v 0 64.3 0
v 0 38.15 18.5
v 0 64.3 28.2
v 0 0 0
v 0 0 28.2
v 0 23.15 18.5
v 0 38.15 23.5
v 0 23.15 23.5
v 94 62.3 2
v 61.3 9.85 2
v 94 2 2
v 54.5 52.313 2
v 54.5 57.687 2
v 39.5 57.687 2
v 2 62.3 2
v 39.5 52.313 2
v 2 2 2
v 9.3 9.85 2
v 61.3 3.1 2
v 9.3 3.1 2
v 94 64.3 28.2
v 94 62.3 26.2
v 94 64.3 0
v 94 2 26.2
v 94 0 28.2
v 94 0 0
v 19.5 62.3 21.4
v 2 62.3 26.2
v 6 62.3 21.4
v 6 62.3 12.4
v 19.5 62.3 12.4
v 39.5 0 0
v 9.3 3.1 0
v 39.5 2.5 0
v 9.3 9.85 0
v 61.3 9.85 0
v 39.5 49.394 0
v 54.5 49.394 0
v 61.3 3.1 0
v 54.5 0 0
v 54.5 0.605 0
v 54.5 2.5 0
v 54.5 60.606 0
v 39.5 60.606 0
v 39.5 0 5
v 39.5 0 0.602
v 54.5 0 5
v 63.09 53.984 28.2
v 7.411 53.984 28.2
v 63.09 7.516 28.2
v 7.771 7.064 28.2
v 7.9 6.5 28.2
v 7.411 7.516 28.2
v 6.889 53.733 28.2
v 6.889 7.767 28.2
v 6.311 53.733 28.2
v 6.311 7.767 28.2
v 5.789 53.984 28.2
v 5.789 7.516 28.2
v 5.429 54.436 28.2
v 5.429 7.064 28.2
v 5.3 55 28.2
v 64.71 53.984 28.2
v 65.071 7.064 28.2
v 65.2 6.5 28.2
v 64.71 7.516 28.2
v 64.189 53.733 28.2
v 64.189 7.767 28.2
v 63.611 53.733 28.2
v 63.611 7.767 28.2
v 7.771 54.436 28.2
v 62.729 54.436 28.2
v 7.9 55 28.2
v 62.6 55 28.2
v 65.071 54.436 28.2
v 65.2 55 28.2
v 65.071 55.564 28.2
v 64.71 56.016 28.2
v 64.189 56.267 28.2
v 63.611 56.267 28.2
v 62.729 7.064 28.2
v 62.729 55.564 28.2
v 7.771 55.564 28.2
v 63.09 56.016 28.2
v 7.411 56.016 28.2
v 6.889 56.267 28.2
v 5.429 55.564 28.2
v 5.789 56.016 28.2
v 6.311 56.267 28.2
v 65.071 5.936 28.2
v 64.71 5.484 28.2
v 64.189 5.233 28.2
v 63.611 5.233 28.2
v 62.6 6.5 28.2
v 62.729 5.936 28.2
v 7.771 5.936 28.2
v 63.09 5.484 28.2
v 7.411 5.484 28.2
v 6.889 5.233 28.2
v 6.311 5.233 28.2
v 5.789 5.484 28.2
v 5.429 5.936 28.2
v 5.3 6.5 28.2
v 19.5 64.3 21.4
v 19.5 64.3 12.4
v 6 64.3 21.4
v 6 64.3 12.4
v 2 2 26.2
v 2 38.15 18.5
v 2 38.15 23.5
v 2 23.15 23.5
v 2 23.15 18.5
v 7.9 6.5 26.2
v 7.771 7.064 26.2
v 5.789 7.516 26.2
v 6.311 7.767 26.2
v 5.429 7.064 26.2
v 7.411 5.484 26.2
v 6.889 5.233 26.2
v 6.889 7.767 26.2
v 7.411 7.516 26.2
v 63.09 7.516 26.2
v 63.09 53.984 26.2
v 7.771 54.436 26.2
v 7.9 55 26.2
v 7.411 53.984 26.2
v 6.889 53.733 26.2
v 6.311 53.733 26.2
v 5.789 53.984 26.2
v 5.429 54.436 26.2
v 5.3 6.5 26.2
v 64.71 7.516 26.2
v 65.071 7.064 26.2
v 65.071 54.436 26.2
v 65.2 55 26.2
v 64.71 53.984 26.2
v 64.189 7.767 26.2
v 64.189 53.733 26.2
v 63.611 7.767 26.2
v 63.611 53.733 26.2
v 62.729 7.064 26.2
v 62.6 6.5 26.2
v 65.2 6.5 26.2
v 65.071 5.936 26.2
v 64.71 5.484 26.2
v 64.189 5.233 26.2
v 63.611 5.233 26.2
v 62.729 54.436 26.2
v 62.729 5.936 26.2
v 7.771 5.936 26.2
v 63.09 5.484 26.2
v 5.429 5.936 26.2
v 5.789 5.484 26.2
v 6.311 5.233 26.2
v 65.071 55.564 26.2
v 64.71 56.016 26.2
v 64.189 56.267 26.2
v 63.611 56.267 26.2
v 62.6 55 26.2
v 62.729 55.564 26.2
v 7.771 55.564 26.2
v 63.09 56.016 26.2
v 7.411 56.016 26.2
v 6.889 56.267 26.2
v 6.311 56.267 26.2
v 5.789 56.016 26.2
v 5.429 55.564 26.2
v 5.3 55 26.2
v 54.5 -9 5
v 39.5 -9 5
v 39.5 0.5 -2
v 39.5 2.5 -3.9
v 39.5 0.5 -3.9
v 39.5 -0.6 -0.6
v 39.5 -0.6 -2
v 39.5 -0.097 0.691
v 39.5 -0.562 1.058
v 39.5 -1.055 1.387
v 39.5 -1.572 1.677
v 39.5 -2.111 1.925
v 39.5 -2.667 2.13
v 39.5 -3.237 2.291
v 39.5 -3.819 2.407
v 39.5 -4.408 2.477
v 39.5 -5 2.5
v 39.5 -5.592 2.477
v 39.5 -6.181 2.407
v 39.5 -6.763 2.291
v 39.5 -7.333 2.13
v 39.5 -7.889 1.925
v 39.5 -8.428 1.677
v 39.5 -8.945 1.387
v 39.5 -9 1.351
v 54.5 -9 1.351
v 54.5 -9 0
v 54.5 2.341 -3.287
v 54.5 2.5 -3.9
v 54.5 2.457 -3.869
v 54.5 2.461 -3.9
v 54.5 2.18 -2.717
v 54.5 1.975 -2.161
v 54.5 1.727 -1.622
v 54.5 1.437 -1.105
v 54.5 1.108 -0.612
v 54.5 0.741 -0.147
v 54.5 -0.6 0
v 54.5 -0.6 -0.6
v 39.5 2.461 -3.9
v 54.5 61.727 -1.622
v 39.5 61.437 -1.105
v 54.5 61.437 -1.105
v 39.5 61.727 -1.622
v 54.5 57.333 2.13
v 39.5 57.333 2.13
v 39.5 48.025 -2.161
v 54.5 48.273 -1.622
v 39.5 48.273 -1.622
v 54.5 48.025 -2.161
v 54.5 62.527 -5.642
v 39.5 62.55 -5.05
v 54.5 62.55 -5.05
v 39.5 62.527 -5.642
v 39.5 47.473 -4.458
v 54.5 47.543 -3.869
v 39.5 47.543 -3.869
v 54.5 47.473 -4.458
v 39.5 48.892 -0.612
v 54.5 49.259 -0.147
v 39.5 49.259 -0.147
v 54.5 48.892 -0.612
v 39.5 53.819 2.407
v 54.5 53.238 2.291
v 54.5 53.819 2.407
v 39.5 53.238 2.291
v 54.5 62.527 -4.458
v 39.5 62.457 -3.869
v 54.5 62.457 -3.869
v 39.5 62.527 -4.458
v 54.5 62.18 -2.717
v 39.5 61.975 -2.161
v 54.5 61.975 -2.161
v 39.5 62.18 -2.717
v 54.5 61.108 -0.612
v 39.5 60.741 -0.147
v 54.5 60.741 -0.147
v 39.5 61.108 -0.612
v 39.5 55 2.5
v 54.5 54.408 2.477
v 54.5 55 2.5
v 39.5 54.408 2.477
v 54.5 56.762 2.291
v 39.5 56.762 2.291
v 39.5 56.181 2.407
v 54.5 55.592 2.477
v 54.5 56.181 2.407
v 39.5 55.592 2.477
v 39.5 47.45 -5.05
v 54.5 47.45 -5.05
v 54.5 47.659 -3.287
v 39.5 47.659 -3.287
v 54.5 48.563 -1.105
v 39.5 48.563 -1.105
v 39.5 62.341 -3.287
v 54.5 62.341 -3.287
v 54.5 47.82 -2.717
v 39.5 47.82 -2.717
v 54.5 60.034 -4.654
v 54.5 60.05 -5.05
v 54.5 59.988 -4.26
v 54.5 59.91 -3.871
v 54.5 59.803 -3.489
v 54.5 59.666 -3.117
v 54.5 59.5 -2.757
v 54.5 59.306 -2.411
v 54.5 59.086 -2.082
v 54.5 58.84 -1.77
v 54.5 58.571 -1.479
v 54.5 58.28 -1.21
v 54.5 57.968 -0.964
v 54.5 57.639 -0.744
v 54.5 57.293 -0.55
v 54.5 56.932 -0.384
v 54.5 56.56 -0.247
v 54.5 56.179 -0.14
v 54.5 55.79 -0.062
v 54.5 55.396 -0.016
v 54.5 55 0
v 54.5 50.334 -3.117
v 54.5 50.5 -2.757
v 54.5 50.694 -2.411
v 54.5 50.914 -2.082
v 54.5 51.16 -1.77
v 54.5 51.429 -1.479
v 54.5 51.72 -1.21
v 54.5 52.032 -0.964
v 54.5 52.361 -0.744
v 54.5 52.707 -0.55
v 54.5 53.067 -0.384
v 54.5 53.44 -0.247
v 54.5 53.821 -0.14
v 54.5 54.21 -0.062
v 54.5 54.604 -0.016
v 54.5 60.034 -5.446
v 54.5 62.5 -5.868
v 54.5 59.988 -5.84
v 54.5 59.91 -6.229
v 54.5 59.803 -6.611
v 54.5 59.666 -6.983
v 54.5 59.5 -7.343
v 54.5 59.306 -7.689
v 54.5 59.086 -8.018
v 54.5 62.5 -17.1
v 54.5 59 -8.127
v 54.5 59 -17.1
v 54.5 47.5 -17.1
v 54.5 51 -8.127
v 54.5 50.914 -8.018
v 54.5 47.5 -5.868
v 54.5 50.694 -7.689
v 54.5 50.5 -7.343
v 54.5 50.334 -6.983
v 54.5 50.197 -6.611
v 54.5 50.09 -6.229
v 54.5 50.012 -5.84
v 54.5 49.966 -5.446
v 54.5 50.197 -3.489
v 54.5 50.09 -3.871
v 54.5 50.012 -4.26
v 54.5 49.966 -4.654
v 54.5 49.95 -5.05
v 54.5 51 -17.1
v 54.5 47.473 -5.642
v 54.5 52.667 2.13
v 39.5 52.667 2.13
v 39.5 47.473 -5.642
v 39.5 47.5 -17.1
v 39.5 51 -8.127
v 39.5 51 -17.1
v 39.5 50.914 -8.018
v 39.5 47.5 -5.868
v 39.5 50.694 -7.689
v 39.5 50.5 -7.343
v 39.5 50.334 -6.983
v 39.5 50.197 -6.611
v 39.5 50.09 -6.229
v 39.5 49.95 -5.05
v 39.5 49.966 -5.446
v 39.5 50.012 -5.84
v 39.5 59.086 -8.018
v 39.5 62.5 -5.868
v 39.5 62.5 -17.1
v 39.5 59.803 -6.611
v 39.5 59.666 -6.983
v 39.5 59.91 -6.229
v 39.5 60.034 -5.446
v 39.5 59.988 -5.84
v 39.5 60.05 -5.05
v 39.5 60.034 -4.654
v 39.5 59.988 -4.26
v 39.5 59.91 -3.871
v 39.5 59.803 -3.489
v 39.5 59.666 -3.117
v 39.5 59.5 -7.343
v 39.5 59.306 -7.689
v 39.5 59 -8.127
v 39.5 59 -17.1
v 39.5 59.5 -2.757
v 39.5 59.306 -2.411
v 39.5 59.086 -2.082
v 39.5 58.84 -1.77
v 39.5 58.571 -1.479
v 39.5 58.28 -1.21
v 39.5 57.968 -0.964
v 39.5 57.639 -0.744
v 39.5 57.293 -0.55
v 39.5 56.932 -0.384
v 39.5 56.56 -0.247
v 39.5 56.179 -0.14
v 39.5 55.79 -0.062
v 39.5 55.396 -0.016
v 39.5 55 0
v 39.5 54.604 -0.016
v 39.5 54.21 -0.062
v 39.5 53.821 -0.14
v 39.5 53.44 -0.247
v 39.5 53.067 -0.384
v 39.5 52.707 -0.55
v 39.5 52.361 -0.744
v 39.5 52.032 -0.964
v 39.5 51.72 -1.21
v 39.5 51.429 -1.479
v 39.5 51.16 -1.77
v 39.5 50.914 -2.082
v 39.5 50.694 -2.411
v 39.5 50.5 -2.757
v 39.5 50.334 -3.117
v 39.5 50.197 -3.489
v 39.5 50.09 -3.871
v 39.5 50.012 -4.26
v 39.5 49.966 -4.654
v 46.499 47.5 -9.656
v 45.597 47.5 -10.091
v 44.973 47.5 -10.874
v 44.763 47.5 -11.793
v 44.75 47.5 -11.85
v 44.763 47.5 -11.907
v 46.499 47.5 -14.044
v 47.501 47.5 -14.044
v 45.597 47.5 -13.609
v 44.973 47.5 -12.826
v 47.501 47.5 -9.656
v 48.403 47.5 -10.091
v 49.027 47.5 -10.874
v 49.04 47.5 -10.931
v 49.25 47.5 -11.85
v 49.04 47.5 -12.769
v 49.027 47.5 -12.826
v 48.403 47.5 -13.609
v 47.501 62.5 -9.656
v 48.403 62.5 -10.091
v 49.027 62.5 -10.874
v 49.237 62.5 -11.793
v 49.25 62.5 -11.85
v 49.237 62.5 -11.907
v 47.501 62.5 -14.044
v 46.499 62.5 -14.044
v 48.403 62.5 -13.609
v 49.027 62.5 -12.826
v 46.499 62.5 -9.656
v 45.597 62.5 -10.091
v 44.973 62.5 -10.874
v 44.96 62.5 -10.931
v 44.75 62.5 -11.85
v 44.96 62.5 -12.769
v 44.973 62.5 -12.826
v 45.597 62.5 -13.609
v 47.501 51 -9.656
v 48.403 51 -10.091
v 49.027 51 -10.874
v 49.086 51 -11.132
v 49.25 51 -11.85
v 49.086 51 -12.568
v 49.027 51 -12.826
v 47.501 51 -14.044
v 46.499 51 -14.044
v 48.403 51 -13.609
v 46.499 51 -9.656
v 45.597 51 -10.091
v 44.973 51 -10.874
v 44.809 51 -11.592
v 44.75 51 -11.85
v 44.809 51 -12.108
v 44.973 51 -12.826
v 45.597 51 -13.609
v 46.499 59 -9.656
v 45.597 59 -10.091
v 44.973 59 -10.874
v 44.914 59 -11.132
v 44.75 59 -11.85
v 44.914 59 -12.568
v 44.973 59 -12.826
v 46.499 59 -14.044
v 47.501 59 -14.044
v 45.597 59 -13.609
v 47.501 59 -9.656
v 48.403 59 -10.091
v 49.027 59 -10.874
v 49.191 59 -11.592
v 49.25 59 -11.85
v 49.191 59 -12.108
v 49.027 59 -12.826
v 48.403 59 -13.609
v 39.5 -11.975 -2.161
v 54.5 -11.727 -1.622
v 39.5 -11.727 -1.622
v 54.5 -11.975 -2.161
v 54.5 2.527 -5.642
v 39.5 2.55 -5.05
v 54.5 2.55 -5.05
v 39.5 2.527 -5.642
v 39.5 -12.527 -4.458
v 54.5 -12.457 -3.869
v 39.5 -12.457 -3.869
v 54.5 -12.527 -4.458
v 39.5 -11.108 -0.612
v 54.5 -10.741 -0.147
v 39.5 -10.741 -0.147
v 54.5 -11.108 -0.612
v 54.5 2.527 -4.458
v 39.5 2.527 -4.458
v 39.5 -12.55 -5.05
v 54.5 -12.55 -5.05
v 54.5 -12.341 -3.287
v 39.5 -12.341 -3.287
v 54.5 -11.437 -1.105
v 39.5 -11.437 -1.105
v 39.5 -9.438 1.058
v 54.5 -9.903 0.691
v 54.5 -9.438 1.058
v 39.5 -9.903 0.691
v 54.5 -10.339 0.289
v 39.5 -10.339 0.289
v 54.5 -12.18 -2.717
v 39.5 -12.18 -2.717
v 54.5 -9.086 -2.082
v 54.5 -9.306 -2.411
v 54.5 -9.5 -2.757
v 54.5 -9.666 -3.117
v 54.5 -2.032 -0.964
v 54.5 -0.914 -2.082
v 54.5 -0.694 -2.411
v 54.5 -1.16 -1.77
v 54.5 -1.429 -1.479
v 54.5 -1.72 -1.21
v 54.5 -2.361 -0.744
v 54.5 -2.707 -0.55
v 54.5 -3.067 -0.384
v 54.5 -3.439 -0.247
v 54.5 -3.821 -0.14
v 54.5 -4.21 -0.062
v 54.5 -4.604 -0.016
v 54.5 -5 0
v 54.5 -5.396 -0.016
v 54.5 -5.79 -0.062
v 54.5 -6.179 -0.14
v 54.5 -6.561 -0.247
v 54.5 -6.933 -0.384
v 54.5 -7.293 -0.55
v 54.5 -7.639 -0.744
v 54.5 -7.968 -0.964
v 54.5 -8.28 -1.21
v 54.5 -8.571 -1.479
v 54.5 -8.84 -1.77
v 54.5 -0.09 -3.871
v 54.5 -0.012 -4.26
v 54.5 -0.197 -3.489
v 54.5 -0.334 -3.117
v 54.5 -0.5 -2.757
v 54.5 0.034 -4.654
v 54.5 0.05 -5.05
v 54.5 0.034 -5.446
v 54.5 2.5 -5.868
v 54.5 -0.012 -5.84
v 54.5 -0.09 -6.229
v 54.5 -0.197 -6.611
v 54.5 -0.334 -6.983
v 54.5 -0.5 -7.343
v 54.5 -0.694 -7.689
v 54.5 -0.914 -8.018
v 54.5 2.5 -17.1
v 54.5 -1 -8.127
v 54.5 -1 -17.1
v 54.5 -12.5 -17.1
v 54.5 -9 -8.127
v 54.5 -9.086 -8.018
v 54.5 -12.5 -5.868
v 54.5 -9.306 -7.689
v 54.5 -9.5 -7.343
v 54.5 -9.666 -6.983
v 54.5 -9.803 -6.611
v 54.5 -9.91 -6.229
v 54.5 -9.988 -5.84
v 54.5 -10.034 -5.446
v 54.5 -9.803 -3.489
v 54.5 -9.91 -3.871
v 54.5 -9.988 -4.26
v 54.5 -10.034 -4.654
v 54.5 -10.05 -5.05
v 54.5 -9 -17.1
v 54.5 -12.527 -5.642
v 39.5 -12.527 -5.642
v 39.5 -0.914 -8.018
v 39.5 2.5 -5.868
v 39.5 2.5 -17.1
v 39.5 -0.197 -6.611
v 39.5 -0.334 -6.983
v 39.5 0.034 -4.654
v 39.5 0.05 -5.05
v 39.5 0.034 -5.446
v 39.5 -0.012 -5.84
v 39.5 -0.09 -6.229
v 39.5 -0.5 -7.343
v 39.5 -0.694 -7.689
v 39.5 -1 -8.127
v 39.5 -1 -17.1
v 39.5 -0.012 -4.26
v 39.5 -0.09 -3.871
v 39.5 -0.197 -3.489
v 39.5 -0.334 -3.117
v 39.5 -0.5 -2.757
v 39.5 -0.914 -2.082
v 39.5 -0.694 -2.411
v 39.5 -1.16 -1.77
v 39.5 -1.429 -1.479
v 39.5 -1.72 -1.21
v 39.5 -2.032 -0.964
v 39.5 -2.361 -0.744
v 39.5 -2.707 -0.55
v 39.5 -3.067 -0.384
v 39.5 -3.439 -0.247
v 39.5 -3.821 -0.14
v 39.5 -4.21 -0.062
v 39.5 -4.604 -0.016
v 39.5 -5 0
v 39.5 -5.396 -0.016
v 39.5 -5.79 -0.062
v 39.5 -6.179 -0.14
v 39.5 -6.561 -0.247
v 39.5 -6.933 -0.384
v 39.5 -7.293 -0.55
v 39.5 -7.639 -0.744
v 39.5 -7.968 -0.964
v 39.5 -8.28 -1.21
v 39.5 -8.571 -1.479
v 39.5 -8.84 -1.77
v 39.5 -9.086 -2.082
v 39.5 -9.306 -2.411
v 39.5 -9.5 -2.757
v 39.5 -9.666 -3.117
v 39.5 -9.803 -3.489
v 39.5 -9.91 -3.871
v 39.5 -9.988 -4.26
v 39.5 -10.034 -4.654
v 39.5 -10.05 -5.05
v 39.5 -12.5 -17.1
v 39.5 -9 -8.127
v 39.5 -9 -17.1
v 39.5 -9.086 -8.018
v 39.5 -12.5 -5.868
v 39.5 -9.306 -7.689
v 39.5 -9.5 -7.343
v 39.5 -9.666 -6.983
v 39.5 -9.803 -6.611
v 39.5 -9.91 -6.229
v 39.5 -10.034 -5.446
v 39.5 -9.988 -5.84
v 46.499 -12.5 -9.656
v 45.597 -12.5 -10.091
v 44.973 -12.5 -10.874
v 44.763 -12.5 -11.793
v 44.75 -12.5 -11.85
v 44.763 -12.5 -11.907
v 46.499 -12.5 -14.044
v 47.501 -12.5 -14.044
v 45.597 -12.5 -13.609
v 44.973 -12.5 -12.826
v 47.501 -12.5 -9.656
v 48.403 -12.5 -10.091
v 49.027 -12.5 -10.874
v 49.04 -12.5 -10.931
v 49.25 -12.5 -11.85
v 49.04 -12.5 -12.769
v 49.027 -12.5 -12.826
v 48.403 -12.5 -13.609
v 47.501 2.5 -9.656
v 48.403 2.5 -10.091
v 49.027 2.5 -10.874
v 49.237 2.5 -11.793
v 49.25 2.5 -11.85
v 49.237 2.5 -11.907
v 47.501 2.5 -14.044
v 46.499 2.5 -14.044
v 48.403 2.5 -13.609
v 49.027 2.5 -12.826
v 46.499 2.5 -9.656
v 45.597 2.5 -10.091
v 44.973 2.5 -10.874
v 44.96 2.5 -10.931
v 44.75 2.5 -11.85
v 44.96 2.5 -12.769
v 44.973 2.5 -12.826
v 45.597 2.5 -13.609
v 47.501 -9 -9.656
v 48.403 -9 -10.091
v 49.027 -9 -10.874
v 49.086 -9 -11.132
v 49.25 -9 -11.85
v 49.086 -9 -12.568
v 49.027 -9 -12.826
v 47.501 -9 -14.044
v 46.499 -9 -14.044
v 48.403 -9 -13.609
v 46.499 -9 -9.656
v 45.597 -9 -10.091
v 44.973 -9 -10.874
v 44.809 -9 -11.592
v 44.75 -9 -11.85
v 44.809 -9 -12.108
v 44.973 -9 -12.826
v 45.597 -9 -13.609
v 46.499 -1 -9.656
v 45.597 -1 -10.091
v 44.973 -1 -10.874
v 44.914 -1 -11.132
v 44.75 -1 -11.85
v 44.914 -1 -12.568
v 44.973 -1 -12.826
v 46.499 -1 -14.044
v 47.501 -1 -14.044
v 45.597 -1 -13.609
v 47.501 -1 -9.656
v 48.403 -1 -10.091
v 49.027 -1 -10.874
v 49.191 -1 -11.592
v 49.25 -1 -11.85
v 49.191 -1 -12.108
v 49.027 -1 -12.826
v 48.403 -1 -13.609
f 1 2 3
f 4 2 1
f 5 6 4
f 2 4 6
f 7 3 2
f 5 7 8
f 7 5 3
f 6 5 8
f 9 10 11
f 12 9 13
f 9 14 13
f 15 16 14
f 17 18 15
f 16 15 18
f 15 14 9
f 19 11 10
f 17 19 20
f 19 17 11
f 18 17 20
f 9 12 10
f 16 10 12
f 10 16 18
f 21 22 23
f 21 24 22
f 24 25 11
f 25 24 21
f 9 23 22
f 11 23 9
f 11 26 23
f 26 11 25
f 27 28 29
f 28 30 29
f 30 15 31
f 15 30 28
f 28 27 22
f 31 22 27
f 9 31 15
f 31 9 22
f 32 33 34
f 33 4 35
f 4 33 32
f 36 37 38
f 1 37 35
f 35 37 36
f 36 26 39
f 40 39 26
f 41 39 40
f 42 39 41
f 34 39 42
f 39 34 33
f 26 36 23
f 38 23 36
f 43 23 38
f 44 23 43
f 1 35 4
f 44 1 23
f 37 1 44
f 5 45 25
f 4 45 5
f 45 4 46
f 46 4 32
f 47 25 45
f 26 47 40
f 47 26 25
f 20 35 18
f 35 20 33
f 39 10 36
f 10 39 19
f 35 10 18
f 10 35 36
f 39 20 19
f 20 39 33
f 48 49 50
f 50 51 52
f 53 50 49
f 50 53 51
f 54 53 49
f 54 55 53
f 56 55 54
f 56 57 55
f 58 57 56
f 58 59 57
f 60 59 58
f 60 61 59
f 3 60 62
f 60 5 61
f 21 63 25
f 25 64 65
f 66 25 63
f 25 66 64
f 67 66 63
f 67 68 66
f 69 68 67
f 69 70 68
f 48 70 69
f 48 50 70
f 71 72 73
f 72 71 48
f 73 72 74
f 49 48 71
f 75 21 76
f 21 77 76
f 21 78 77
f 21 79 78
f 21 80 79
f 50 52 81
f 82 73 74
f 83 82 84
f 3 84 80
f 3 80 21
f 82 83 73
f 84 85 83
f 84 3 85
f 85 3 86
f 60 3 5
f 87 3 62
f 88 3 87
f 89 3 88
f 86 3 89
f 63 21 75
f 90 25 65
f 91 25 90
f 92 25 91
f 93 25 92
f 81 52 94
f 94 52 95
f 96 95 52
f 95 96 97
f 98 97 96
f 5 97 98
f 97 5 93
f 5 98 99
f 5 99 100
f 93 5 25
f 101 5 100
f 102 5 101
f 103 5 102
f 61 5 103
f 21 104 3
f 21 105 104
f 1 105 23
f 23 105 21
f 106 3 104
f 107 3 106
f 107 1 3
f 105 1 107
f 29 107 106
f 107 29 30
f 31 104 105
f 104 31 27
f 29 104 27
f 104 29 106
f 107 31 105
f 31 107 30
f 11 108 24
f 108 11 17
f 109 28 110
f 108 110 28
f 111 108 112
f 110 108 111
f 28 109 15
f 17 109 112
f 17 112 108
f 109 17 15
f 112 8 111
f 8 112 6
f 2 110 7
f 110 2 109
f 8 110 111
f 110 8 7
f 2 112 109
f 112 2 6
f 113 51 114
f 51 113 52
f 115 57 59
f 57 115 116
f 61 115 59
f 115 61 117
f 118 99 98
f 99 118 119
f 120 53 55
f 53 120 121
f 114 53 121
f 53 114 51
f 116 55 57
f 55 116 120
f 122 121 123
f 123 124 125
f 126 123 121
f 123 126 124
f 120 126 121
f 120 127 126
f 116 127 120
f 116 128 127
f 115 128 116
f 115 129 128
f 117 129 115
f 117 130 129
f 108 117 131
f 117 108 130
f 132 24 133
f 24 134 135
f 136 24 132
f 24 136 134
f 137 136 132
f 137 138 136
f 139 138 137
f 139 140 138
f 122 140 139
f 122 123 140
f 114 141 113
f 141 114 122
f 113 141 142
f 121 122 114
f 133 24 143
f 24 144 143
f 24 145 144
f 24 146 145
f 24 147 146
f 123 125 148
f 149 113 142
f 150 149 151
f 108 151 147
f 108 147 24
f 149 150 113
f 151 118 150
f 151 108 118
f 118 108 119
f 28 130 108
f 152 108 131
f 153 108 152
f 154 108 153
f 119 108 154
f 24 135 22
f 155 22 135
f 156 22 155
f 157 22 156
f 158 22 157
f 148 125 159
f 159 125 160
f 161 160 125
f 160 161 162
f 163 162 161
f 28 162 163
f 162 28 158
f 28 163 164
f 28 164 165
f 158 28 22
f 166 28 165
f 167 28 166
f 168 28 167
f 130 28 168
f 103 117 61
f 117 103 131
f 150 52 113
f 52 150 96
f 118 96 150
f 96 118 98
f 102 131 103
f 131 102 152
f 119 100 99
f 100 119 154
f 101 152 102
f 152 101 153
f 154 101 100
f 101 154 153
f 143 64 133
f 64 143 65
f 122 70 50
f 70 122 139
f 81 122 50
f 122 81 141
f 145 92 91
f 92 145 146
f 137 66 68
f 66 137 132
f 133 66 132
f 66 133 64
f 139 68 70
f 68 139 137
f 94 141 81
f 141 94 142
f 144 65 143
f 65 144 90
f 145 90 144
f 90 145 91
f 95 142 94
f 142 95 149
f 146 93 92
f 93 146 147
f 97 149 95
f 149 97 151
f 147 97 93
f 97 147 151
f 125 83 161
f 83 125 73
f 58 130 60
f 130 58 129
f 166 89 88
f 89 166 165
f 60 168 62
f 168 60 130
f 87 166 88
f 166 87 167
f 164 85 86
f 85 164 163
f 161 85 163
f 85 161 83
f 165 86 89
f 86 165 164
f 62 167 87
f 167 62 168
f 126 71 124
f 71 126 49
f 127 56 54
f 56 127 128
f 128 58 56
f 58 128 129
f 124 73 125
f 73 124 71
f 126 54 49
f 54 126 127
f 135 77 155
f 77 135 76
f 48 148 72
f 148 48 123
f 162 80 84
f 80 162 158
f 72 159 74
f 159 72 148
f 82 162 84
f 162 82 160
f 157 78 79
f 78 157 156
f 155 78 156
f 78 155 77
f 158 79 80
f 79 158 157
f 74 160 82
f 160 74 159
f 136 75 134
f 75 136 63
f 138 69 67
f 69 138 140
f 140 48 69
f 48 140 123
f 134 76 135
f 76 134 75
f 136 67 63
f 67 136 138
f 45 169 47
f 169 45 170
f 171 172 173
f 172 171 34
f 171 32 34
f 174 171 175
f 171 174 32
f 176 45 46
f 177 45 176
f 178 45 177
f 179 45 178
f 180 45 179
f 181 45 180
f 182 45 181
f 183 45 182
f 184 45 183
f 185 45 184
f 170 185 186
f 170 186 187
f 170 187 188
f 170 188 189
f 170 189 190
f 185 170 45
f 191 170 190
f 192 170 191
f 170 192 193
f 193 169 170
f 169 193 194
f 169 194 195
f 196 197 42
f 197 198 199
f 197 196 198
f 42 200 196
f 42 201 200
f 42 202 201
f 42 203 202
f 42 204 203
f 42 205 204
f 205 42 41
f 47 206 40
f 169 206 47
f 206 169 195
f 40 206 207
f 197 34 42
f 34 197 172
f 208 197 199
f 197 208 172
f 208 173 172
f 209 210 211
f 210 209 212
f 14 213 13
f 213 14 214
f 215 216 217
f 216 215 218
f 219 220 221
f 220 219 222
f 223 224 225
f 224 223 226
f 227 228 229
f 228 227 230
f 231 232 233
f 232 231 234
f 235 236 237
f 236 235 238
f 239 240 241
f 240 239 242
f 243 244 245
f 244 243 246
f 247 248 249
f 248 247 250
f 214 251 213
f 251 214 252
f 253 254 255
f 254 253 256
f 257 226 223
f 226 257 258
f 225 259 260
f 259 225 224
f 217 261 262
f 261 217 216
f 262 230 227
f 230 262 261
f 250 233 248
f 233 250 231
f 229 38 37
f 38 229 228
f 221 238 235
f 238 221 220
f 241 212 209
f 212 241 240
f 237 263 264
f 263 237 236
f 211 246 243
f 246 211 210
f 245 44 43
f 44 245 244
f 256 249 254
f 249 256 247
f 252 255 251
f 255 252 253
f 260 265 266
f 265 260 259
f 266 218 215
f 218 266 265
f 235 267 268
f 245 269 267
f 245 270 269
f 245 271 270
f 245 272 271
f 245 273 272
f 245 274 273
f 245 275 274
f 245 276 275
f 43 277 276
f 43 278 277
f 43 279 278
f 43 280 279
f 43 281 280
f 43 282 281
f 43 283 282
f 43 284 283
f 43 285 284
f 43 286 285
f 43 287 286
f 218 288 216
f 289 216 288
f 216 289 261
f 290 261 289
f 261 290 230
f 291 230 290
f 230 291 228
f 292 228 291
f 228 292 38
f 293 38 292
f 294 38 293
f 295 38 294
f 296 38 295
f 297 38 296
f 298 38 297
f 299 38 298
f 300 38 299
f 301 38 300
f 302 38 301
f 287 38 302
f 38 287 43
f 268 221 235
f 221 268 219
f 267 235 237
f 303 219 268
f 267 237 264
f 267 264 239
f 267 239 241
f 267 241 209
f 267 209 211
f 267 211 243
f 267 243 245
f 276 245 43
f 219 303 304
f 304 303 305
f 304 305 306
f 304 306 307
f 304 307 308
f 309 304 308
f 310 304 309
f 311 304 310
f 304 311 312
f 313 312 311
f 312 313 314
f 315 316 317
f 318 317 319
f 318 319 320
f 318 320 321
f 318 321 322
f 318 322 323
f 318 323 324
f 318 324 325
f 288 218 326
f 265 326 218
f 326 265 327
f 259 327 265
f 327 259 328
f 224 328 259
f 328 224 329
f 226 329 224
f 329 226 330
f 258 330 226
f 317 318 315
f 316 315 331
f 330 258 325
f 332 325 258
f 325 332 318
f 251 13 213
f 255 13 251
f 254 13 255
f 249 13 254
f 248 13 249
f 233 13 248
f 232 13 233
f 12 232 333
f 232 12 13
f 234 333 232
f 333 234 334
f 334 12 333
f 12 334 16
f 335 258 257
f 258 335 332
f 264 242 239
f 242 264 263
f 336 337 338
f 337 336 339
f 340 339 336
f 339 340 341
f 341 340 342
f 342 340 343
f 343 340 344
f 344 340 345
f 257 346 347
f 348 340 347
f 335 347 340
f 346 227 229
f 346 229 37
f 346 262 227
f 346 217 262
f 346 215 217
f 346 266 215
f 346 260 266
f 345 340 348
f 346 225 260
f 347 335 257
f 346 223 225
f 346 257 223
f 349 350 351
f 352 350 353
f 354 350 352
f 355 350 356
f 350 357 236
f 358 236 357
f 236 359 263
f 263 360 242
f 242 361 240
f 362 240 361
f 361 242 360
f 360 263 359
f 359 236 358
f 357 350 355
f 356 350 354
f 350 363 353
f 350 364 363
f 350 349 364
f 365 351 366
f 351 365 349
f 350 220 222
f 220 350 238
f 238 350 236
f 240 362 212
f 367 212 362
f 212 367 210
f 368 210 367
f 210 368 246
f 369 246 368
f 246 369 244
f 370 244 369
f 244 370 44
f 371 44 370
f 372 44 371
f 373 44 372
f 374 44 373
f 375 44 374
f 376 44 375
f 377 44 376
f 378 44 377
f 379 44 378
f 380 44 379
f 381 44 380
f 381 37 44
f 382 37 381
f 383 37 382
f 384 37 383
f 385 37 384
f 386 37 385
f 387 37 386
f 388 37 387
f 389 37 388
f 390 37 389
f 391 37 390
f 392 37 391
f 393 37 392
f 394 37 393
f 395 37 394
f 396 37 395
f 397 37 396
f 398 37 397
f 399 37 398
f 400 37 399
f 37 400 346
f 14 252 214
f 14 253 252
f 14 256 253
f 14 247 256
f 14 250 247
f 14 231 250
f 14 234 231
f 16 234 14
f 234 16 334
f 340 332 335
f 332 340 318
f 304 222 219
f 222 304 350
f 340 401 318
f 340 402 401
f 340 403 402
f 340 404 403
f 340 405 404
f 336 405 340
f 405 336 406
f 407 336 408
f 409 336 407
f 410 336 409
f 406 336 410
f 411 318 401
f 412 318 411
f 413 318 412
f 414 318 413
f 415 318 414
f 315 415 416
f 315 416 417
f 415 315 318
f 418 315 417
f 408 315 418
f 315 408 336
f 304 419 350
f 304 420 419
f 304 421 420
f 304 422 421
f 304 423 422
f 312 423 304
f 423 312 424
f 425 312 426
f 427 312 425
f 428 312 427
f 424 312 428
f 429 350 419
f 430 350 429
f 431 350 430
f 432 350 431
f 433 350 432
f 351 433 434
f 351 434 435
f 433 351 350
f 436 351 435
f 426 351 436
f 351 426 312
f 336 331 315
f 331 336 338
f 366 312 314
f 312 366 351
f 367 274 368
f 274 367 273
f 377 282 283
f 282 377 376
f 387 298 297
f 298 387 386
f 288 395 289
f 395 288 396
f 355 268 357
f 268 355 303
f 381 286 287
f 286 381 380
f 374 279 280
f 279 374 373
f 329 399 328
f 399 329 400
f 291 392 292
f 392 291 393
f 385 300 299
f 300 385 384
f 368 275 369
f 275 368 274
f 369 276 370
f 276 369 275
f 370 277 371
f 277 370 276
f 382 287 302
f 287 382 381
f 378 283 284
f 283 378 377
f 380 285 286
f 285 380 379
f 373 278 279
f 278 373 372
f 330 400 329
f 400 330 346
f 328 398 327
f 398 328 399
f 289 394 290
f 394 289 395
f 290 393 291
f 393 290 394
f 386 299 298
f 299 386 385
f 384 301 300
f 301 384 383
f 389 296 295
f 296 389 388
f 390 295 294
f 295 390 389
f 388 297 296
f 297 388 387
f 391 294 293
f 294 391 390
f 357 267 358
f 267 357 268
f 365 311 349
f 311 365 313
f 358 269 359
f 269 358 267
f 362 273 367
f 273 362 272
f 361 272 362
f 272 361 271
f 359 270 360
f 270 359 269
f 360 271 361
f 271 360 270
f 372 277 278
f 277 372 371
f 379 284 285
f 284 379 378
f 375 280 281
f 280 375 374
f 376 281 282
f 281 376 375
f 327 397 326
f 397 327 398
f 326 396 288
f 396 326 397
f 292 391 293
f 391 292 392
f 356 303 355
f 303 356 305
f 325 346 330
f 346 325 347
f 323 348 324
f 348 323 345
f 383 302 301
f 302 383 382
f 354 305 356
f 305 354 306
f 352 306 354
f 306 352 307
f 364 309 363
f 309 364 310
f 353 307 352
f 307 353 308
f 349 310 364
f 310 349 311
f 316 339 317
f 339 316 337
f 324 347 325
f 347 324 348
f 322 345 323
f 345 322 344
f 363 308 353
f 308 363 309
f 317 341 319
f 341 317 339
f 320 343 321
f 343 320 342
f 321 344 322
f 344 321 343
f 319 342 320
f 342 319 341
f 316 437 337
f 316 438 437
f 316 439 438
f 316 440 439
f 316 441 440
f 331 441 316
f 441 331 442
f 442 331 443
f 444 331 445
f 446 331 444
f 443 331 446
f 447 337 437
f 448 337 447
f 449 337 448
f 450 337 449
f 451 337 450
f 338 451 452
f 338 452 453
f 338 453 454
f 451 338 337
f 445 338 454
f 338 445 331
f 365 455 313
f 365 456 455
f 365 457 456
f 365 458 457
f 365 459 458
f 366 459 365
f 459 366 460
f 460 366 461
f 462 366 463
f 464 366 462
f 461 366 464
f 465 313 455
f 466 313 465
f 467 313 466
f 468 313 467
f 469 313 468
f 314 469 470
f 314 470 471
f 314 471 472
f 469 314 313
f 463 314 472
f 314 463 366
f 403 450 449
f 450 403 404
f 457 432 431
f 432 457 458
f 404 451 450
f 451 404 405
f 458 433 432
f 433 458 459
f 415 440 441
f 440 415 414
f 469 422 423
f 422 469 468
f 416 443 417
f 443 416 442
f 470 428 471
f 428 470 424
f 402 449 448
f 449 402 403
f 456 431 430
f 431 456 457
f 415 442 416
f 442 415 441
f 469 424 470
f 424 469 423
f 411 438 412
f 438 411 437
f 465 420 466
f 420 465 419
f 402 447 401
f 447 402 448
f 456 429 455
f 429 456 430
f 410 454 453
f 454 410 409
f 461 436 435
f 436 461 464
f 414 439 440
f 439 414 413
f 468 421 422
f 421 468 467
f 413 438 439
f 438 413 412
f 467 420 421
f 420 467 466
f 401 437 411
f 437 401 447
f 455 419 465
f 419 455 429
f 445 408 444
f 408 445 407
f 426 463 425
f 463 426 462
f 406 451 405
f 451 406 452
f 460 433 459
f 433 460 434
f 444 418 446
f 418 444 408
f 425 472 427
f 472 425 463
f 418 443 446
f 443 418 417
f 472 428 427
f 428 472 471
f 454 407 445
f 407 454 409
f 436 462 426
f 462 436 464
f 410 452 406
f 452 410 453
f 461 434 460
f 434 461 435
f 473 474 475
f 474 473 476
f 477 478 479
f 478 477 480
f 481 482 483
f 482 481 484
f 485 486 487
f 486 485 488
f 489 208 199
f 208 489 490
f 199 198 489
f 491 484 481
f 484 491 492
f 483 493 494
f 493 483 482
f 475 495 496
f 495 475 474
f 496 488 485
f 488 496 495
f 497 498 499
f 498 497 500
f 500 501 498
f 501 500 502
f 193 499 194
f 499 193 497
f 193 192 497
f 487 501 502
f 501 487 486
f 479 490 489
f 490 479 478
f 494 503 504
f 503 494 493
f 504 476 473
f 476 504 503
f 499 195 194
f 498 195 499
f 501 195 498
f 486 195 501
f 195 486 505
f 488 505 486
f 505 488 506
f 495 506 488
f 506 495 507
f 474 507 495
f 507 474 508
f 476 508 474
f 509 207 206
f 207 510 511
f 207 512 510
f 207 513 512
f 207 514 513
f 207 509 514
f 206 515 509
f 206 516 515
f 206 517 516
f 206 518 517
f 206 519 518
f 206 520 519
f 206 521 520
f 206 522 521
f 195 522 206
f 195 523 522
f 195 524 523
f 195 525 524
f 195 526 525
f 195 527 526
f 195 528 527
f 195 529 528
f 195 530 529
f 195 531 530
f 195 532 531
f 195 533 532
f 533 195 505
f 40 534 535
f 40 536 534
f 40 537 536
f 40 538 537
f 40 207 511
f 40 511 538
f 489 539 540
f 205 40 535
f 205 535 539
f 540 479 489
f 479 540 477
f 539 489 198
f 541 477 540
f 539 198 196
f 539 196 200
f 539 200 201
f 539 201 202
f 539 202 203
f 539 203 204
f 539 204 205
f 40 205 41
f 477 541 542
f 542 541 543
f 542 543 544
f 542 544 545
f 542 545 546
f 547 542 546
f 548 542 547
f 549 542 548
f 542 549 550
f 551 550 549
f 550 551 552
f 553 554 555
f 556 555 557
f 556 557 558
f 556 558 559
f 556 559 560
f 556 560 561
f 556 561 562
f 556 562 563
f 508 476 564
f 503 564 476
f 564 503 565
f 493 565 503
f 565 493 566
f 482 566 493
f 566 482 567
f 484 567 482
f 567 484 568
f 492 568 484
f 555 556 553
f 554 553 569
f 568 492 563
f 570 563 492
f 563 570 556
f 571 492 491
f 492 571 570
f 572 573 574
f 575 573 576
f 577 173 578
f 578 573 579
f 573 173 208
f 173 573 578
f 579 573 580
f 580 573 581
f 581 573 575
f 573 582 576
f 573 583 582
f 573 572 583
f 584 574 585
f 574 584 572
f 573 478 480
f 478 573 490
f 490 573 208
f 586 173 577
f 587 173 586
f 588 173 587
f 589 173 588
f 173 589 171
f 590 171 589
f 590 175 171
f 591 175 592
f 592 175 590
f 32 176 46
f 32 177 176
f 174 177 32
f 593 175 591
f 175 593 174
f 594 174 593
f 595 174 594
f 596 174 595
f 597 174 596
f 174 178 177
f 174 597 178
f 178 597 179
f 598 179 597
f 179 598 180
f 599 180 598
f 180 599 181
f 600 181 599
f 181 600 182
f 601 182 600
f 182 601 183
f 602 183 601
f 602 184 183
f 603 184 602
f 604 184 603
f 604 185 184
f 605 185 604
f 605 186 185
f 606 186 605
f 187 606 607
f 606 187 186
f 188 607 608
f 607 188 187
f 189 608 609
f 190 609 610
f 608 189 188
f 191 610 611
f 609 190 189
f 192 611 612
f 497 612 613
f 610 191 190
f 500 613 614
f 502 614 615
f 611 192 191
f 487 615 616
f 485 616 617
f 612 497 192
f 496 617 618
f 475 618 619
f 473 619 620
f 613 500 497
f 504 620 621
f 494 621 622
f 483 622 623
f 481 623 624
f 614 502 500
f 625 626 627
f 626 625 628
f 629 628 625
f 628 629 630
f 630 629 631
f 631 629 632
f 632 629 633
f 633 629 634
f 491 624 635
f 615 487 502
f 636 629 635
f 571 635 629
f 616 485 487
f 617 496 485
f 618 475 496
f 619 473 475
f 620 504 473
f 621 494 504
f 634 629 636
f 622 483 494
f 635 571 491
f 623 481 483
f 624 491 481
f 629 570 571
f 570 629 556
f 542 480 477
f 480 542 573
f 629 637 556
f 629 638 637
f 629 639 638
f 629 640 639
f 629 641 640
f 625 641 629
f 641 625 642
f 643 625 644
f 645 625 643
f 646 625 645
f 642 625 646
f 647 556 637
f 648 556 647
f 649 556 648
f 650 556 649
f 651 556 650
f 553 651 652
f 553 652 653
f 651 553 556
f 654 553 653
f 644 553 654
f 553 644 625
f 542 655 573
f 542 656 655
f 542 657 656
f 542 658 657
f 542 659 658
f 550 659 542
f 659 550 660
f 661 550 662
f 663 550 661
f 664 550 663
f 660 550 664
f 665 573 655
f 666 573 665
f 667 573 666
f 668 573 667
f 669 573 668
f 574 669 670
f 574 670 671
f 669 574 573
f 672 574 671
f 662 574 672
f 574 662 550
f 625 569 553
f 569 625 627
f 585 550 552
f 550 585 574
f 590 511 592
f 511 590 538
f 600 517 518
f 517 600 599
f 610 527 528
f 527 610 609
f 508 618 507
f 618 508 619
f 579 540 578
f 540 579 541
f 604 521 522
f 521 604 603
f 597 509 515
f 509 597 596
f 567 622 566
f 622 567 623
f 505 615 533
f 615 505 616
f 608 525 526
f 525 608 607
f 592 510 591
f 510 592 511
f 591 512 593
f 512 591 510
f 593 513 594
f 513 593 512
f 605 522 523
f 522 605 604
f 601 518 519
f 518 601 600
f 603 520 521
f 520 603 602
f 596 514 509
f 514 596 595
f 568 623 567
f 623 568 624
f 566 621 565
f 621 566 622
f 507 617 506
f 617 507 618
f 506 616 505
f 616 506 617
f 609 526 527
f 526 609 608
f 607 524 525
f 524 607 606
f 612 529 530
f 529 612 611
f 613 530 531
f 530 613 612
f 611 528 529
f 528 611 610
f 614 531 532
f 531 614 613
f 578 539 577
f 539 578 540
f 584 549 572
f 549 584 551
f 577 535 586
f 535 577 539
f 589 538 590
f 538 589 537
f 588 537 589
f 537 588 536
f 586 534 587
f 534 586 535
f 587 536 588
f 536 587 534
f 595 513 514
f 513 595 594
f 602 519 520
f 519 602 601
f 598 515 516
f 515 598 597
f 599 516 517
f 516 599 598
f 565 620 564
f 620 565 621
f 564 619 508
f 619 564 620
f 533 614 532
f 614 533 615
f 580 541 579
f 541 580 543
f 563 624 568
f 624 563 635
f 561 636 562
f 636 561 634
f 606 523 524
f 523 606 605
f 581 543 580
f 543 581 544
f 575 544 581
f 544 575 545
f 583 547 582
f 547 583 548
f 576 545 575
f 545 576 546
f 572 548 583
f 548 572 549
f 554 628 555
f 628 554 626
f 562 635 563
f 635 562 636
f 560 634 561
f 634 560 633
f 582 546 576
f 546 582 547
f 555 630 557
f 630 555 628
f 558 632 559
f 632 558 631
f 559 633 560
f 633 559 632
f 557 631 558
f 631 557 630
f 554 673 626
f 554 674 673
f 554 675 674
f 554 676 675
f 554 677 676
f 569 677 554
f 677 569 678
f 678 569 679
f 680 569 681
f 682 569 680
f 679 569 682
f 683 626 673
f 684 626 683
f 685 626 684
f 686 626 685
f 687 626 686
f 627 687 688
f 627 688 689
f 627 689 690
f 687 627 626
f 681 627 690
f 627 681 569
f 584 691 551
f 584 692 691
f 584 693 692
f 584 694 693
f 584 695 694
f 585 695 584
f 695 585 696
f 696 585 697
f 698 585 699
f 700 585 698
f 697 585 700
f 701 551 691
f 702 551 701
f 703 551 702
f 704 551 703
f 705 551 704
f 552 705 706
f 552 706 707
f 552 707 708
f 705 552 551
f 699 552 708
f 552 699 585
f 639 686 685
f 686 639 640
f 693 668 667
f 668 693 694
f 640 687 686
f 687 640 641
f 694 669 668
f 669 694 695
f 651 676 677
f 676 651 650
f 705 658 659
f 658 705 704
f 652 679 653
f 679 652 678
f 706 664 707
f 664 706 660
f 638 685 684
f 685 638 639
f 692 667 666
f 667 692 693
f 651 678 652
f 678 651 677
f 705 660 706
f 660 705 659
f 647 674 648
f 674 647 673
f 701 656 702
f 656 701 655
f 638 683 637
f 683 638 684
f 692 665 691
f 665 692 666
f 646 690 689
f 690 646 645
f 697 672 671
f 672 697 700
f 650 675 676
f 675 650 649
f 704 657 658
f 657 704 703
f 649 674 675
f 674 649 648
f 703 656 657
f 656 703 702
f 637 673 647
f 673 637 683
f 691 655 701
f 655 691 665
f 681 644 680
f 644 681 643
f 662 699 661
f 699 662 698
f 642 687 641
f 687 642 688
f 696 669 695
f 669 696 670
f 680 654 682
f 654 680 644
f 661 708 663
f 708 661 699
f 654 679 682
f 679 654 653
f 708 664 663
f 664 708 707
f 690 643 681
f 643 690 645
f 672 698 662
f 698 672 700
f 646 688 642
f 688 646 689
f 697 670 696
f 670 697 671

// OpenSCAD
piStandoffHeight = 6;
piStandoffBoltSize = 2.5;

// rotate([270,0,0])
//    translate([45,-19,31.0])
//        import("./pi.stl"); 

shaftDiameter = 10.1;
clampWidth = 15 ;
clampThickness = 2.5 ;
clampLegLengthFromShaft = 7 ;
clampLegThickness = clampThickness + 1 ; // default is 'clampThickness' to keep it the same thickness as the clamp
clampLegGap = 8 ;
clampToClampScrewCenter = (clampLegLengthFromShaft - clampThickness) / 2 - 3 ; //using '(clampLegLengthFromShaft - clampThickness) / 2' nearly centres this hole on the clamp leg
clampScrewDiameter = 4.5 ;
shaftToMountPlate = 0 ;
mountPlateThickness = 5 ;
mountPlateLength = 38 ;
mountHoleSpacing = 30 ;
mountHoleDiameter = 4.0 ;
screwHoleSmoothness = 14 ; //6 = printable vertically. Applies to mount plate screw holes and clamp leg screw holes
clampSmoothness = 80 ;

shaftSpacing = 60.0;
piLength = 92.0;
piWidth = 58.3;
piHeight = 18.2 + piStandoffHeight;
piCaseWallThickness = 2.0;
piCaseOffset = shaftDiameter/2;
piCaseRailWidth = 2.0;
piCaseRailOffset = 2.4;

piCaseLength = piLength + piCaseWallThickness;
piCaseWidth = piWidth + piCaseWallThickness*2.0;
piCaseHeight = piHeight + piCaseWallThickness*2.0;

clampWingLength = 9;
clampWingWidth = clampWidth;
clampWingHeight = 5;

piPowerHeight = 9;
piPowerWidth = 13.5;
piPowerVertOffset = -3.8 + piHeight-piCaseWallThickness*2+piPowerHeight/2 - piStandoffHeight;
piPowerHorzOffset = 4.0;

piGPIOHeight = 6.75;
piGPIOWidth = 52.0;
piGPIOVertOffset = 1.1;
piGPIOHorzOffset = 7.3;

piSDHeight = 5.0;
piSDWidth = 15.0;
piSDVertOffset = -1.2 + piHeight + piCaseWallThickness*2 - piStandoffHeight;
piSDHorzOffset = -2 + piWidth/2 - piCaseWallThickness*2;

piCaseMountHoleDiameter = piStandoffBoltSize + 0.1;

clampOffset = 0;// - clampWidth -piWidth/2 + clampWidth/2 - piCaseWallThickness;
clamp1HorzOffset = 55;
clamp2HorzOffset = shaftSpacing - clamp1HorzOffset;

//clampWithMountPlate();

//translate([50,0,50]) clamp();

piCase();

module piCase() {
    difference() {
        union(){
            piCaseTop();
            piCaseBottom();
            piCaseSides();
            piCaseBack();
                //piCaseRails();
                //piCaseRailsFillets();
			clampWings();
            clamps();
        }

        piMountingHoles();
    }
}

module piMountingHoles() {
    rotate([0,0,0])
        translate([6.6,6.5,piCaseHeight-piCaseWallThickness])
            cylinder(h=piCaseWallThickness, d=piCaseMountHoleDiameter, center=false, $fn = screwHoleSmoothness);
    rotate([0,0,0])
        translate([63.9,6.5,piCaseHeight-piCaseWallThickness])
            cylinder(h=piCaseWallThickness, d=piCaseMountHoleDiameter, center=false, $fn = screwHoleSmoothness);
    rotate([0,0,0])
        translate([6.6,55.0,piCaseHeight-piCaseWallThickness])
            cylinder(h=piCaseWallThickness, d=piCaseMountHoleDiameter, center=false, $fn = screwHoleSmoothness);
    rotate([0,0,0])
        translate([63.9,55.0,piCaseHeight-piCaseWallThickness])
            cylinder(h=piCaseWallThickness, d=piCaseMountHoleDiameter, center=false, $fn = screwHoleSmoothness);
}

module clampWings() {
	translate([clampWingWidth/2+piCaseLength/2+clampOffset,-clampWingLength, 0])
		rotate([0,0,90])
			cube([clampWingLength, clampWingWidth, clampWingHeight]);
	translate([clampWingWidth/2+piCaseLength/2+clampOffset, -0.6, 0])
		rotate([0,90,90])
			cube([2, clampWingWidth, 3.1]);
	translate([clampWingWidth/2+piCaseLength/2+clampOffset, 0.5, -1])
		rotate([0,90,90])
			cube([2.9, clampWingWidth, 2]);
}

module piSDSlot() {
    rotate([90,0,90])
        translate([piSDHorzOffset, piSDVertOffset, -0.1])
            squareSlot(height=piSDHeight, width=piSDWidth, depth=piCaseWallThickness+0.2);
}

module piCaseGPIO() {
    rotate([0,0,0])
        translate([piGPIOHorzOffset+piCaseWallThickness,piGPIOVertOffset+piCaseWallThickness+piGPIOHeight/2,-0.1])
            squareSlot(height=piGPIOHeight, width=piGPIOWidth, depth=piCaseWallThickness+0.2);
}

module squareSlot(height=1, width=3, depth=1) {
	translate([0,-height/2,0])
	cube([width, height, depth]);
}

module roundedSlot(height=1, width=3, depth=1) {
    union() {
        rotate([0,0,0])
            translate([height/2,0,0])
                cylinder(h=depth, r=height/2, center=false);
        rotate([0,0,0])
            translate([width-height/2,0,0])
                cylinder(h=depth, r=height/2, center=false);
        rotate([0,0,0])
            translate([height/2,-height/2,0])
                cube([width-height, height, depth]);
    }
}

module piCasePower() {
    rotate([90,0,0])
        translate([piCaseWallThickness+piPowerHorzOffset,piCaseWallThickness+piPowerVertOffset,-piCaseWidth-piCaseWallThickness-0.1])
            squareSlot(height=piPowerHeight, width=piPowerWidth, depth=piCaseWallThickness+0.2);
}

module piCaseRailsFillets() {
    difference() {
        rotate([0,0,0])
            translate([0, piCaseWallThickness, piCaseHeight-piCaseWallThickness-piCaseRailWidth*2-piCaseRailOffset-piCaseWallThickness])
                piCaseRail();
        rotate([0,90,0])
            translate([-piCaseHeight+piCaseWallThickness+piCaseRailWidth*2+piCaseRailOffset,piCaseWallThickness+piCaseRailWidth,0])
                cylinder(h=piCaseLength, r=piCaseRailWidth, center=false);
    }

    difference() {
        rotate([0,0,0])
            translate([0, piCaseWidth-piCaseWallThickness, piCaseHeight-piCaseWallThickness-piCaseRailWidth*2-piCaseRailOffset])
                piCaseRail();
        rotate([0,90,0])
            translate([-piCaseHeight+piCaseWallThickness+piCaseRailWidth*2+piCaseRailOffset,piCaseWidth-piCaseWallThickness,0])
                cylinder(h=piCaseLength, r=piCaseRailWidth, center=false);
    }
}

module fillet() {
    rotate([0,0,0])
        translate([0, piCaseWallThickness, piCaseHeight-piCaseWallThickness-piCaseRailWidth*2-piCaseRailOffset])
            piCaseRail();

    rotate([0,90,0])
        translate([0,0,0])
            cylinder(h=piCaseLength, r=piCaseRailWidth, center=false);
}

module piCaseRails() {
    rotate([0,0,0])
        translate([0, piCaseWallThickness, piCaseHeight-piCaseWallThickness-piCaseRailWidth-piCaseRailOffset])
            piCaseRail();

    rotate([0,0,0])
        translate([0, piCaseWidth-piCaseRailWidth, piCaseHeight-piCaseWallThickness-piCaseRailWidth-piCaseRailOffset])
            piCaseRail();
}

module piCaseRail() {
    cube([piCaseLength, piCaseRailWidth, piCaseRailWidth], false);
//        translate([0,piCaseRailWidth,0])
//            fillet();

//    }
}

module piCaseSides() {
    rotate([0,0,0])
        translate([0,0,0])
            cube([piCaseLength, piCaseWallThickness, piCaseHeight], false);

    difference() {
        rotate([0,0,0])
            translate([0,piCaseWidth,0])
                cube([piCaseLength, piCaseWallThickness, piCaseHeight], false);
        piCasePower();
    }
}

module piCaseBack() {
    difference() {
        rotate([0, 0, 0])
            translate([0,0,0])
                cube([piCaseWallThickness, piCaseWidth, piCaseHeight], false);

        piSDSlot();
    }
}

module piCaseBottom() {
    rotate([0, 0, 0])
        translate([0,0,piHeight+piCaseWallThickness])
            cube([piCaseLength, piCaseWidth, piCaseWallThickness], false);
}

module piCaseTop(){
    difference() {
        rotate([0, 0, 0])
            translate([0,0,0])
                cube([piCaseLength, piCaseWidth, piCaseWallThickness], false);
        piCaseGPIO();
    }
}

module clamps(){
    rotate([90,0,90])
        translate([clamp1HorzOffset,-shaftDiameter/2,piCaseLength/2-clampWidth/2])
            clamp();
    rotate([90,0,90])
        translate([-clamp2HorzOffset,-shaftDiameter/2,piCaseLength/2-clampWidth/2])
            clamp();
}

module clampWithMountPlate(){
	union(){
		clamp();
        plate();
	}
}

module plate(){
    translate([0,shaftDiameter / 2 + shaftToMountPlate + mountPlateThickness / 2,clampWidth / 2])
        difference(){
            cube([mountPlateLength,mountPlateThickness,clampWidth], center = true);
            translate([-mountHoleSpacing / 2,0,0]) rotate([90,0,0]) cylinder(r = mountHoleDiameter / 2, h = mountPlateThickness + 2, center = true, $fn = screwHoleSmoothness);
            translate([mountHoleSpacing / 2,0,0]) rotate([90,0,0]) cylinder(r = mountHoleDiameter / 2, h = mountPlateThickness + 2, center = true, $fn = screwHoleSmoothness);
        }
}

module clamp(){
	difference(){
		union(){
			cylinder(r = shaftDiameter / 2 + clampThickness, h = clampWidth, $fn = clampSmoothness);
			translate([0,-(shaftDiameter / 2 + clampLegLengthFromShaft) / 2,clampWidth / 2]) cube([clampLegThickness * 2 + clampLegGap, shaftDiameter / 2 + clampLegLengthFromShaft,clampWidth], center = true);
		}
			translate([0,0,-1]) cylinder(r = shaftDiameter / 2,h = clampWidth + 2, $fn = clampSmoothness);
			translate([0, -(shaftDiameter / 4 + clampLegLengthFromShaft ) + 0.1, clampWidth / 2]) cube([clampLegGap, shaftDiameter / 2 + clampLegLengthFromShaft * 2, clampWidth + 2], center = true);
			translate([0, -(shaftDiameter / 2 + clampThickness + clampToClampScrewCenter ), clampWidth / 2]) rotate([0, 90, 0]) cylinder(r = clampScrewDiameter / 2, h = clampLegThickness * 2 + clampLegGap + 2,center = true, $fn = screwHoleSmoothness);
	}
}
